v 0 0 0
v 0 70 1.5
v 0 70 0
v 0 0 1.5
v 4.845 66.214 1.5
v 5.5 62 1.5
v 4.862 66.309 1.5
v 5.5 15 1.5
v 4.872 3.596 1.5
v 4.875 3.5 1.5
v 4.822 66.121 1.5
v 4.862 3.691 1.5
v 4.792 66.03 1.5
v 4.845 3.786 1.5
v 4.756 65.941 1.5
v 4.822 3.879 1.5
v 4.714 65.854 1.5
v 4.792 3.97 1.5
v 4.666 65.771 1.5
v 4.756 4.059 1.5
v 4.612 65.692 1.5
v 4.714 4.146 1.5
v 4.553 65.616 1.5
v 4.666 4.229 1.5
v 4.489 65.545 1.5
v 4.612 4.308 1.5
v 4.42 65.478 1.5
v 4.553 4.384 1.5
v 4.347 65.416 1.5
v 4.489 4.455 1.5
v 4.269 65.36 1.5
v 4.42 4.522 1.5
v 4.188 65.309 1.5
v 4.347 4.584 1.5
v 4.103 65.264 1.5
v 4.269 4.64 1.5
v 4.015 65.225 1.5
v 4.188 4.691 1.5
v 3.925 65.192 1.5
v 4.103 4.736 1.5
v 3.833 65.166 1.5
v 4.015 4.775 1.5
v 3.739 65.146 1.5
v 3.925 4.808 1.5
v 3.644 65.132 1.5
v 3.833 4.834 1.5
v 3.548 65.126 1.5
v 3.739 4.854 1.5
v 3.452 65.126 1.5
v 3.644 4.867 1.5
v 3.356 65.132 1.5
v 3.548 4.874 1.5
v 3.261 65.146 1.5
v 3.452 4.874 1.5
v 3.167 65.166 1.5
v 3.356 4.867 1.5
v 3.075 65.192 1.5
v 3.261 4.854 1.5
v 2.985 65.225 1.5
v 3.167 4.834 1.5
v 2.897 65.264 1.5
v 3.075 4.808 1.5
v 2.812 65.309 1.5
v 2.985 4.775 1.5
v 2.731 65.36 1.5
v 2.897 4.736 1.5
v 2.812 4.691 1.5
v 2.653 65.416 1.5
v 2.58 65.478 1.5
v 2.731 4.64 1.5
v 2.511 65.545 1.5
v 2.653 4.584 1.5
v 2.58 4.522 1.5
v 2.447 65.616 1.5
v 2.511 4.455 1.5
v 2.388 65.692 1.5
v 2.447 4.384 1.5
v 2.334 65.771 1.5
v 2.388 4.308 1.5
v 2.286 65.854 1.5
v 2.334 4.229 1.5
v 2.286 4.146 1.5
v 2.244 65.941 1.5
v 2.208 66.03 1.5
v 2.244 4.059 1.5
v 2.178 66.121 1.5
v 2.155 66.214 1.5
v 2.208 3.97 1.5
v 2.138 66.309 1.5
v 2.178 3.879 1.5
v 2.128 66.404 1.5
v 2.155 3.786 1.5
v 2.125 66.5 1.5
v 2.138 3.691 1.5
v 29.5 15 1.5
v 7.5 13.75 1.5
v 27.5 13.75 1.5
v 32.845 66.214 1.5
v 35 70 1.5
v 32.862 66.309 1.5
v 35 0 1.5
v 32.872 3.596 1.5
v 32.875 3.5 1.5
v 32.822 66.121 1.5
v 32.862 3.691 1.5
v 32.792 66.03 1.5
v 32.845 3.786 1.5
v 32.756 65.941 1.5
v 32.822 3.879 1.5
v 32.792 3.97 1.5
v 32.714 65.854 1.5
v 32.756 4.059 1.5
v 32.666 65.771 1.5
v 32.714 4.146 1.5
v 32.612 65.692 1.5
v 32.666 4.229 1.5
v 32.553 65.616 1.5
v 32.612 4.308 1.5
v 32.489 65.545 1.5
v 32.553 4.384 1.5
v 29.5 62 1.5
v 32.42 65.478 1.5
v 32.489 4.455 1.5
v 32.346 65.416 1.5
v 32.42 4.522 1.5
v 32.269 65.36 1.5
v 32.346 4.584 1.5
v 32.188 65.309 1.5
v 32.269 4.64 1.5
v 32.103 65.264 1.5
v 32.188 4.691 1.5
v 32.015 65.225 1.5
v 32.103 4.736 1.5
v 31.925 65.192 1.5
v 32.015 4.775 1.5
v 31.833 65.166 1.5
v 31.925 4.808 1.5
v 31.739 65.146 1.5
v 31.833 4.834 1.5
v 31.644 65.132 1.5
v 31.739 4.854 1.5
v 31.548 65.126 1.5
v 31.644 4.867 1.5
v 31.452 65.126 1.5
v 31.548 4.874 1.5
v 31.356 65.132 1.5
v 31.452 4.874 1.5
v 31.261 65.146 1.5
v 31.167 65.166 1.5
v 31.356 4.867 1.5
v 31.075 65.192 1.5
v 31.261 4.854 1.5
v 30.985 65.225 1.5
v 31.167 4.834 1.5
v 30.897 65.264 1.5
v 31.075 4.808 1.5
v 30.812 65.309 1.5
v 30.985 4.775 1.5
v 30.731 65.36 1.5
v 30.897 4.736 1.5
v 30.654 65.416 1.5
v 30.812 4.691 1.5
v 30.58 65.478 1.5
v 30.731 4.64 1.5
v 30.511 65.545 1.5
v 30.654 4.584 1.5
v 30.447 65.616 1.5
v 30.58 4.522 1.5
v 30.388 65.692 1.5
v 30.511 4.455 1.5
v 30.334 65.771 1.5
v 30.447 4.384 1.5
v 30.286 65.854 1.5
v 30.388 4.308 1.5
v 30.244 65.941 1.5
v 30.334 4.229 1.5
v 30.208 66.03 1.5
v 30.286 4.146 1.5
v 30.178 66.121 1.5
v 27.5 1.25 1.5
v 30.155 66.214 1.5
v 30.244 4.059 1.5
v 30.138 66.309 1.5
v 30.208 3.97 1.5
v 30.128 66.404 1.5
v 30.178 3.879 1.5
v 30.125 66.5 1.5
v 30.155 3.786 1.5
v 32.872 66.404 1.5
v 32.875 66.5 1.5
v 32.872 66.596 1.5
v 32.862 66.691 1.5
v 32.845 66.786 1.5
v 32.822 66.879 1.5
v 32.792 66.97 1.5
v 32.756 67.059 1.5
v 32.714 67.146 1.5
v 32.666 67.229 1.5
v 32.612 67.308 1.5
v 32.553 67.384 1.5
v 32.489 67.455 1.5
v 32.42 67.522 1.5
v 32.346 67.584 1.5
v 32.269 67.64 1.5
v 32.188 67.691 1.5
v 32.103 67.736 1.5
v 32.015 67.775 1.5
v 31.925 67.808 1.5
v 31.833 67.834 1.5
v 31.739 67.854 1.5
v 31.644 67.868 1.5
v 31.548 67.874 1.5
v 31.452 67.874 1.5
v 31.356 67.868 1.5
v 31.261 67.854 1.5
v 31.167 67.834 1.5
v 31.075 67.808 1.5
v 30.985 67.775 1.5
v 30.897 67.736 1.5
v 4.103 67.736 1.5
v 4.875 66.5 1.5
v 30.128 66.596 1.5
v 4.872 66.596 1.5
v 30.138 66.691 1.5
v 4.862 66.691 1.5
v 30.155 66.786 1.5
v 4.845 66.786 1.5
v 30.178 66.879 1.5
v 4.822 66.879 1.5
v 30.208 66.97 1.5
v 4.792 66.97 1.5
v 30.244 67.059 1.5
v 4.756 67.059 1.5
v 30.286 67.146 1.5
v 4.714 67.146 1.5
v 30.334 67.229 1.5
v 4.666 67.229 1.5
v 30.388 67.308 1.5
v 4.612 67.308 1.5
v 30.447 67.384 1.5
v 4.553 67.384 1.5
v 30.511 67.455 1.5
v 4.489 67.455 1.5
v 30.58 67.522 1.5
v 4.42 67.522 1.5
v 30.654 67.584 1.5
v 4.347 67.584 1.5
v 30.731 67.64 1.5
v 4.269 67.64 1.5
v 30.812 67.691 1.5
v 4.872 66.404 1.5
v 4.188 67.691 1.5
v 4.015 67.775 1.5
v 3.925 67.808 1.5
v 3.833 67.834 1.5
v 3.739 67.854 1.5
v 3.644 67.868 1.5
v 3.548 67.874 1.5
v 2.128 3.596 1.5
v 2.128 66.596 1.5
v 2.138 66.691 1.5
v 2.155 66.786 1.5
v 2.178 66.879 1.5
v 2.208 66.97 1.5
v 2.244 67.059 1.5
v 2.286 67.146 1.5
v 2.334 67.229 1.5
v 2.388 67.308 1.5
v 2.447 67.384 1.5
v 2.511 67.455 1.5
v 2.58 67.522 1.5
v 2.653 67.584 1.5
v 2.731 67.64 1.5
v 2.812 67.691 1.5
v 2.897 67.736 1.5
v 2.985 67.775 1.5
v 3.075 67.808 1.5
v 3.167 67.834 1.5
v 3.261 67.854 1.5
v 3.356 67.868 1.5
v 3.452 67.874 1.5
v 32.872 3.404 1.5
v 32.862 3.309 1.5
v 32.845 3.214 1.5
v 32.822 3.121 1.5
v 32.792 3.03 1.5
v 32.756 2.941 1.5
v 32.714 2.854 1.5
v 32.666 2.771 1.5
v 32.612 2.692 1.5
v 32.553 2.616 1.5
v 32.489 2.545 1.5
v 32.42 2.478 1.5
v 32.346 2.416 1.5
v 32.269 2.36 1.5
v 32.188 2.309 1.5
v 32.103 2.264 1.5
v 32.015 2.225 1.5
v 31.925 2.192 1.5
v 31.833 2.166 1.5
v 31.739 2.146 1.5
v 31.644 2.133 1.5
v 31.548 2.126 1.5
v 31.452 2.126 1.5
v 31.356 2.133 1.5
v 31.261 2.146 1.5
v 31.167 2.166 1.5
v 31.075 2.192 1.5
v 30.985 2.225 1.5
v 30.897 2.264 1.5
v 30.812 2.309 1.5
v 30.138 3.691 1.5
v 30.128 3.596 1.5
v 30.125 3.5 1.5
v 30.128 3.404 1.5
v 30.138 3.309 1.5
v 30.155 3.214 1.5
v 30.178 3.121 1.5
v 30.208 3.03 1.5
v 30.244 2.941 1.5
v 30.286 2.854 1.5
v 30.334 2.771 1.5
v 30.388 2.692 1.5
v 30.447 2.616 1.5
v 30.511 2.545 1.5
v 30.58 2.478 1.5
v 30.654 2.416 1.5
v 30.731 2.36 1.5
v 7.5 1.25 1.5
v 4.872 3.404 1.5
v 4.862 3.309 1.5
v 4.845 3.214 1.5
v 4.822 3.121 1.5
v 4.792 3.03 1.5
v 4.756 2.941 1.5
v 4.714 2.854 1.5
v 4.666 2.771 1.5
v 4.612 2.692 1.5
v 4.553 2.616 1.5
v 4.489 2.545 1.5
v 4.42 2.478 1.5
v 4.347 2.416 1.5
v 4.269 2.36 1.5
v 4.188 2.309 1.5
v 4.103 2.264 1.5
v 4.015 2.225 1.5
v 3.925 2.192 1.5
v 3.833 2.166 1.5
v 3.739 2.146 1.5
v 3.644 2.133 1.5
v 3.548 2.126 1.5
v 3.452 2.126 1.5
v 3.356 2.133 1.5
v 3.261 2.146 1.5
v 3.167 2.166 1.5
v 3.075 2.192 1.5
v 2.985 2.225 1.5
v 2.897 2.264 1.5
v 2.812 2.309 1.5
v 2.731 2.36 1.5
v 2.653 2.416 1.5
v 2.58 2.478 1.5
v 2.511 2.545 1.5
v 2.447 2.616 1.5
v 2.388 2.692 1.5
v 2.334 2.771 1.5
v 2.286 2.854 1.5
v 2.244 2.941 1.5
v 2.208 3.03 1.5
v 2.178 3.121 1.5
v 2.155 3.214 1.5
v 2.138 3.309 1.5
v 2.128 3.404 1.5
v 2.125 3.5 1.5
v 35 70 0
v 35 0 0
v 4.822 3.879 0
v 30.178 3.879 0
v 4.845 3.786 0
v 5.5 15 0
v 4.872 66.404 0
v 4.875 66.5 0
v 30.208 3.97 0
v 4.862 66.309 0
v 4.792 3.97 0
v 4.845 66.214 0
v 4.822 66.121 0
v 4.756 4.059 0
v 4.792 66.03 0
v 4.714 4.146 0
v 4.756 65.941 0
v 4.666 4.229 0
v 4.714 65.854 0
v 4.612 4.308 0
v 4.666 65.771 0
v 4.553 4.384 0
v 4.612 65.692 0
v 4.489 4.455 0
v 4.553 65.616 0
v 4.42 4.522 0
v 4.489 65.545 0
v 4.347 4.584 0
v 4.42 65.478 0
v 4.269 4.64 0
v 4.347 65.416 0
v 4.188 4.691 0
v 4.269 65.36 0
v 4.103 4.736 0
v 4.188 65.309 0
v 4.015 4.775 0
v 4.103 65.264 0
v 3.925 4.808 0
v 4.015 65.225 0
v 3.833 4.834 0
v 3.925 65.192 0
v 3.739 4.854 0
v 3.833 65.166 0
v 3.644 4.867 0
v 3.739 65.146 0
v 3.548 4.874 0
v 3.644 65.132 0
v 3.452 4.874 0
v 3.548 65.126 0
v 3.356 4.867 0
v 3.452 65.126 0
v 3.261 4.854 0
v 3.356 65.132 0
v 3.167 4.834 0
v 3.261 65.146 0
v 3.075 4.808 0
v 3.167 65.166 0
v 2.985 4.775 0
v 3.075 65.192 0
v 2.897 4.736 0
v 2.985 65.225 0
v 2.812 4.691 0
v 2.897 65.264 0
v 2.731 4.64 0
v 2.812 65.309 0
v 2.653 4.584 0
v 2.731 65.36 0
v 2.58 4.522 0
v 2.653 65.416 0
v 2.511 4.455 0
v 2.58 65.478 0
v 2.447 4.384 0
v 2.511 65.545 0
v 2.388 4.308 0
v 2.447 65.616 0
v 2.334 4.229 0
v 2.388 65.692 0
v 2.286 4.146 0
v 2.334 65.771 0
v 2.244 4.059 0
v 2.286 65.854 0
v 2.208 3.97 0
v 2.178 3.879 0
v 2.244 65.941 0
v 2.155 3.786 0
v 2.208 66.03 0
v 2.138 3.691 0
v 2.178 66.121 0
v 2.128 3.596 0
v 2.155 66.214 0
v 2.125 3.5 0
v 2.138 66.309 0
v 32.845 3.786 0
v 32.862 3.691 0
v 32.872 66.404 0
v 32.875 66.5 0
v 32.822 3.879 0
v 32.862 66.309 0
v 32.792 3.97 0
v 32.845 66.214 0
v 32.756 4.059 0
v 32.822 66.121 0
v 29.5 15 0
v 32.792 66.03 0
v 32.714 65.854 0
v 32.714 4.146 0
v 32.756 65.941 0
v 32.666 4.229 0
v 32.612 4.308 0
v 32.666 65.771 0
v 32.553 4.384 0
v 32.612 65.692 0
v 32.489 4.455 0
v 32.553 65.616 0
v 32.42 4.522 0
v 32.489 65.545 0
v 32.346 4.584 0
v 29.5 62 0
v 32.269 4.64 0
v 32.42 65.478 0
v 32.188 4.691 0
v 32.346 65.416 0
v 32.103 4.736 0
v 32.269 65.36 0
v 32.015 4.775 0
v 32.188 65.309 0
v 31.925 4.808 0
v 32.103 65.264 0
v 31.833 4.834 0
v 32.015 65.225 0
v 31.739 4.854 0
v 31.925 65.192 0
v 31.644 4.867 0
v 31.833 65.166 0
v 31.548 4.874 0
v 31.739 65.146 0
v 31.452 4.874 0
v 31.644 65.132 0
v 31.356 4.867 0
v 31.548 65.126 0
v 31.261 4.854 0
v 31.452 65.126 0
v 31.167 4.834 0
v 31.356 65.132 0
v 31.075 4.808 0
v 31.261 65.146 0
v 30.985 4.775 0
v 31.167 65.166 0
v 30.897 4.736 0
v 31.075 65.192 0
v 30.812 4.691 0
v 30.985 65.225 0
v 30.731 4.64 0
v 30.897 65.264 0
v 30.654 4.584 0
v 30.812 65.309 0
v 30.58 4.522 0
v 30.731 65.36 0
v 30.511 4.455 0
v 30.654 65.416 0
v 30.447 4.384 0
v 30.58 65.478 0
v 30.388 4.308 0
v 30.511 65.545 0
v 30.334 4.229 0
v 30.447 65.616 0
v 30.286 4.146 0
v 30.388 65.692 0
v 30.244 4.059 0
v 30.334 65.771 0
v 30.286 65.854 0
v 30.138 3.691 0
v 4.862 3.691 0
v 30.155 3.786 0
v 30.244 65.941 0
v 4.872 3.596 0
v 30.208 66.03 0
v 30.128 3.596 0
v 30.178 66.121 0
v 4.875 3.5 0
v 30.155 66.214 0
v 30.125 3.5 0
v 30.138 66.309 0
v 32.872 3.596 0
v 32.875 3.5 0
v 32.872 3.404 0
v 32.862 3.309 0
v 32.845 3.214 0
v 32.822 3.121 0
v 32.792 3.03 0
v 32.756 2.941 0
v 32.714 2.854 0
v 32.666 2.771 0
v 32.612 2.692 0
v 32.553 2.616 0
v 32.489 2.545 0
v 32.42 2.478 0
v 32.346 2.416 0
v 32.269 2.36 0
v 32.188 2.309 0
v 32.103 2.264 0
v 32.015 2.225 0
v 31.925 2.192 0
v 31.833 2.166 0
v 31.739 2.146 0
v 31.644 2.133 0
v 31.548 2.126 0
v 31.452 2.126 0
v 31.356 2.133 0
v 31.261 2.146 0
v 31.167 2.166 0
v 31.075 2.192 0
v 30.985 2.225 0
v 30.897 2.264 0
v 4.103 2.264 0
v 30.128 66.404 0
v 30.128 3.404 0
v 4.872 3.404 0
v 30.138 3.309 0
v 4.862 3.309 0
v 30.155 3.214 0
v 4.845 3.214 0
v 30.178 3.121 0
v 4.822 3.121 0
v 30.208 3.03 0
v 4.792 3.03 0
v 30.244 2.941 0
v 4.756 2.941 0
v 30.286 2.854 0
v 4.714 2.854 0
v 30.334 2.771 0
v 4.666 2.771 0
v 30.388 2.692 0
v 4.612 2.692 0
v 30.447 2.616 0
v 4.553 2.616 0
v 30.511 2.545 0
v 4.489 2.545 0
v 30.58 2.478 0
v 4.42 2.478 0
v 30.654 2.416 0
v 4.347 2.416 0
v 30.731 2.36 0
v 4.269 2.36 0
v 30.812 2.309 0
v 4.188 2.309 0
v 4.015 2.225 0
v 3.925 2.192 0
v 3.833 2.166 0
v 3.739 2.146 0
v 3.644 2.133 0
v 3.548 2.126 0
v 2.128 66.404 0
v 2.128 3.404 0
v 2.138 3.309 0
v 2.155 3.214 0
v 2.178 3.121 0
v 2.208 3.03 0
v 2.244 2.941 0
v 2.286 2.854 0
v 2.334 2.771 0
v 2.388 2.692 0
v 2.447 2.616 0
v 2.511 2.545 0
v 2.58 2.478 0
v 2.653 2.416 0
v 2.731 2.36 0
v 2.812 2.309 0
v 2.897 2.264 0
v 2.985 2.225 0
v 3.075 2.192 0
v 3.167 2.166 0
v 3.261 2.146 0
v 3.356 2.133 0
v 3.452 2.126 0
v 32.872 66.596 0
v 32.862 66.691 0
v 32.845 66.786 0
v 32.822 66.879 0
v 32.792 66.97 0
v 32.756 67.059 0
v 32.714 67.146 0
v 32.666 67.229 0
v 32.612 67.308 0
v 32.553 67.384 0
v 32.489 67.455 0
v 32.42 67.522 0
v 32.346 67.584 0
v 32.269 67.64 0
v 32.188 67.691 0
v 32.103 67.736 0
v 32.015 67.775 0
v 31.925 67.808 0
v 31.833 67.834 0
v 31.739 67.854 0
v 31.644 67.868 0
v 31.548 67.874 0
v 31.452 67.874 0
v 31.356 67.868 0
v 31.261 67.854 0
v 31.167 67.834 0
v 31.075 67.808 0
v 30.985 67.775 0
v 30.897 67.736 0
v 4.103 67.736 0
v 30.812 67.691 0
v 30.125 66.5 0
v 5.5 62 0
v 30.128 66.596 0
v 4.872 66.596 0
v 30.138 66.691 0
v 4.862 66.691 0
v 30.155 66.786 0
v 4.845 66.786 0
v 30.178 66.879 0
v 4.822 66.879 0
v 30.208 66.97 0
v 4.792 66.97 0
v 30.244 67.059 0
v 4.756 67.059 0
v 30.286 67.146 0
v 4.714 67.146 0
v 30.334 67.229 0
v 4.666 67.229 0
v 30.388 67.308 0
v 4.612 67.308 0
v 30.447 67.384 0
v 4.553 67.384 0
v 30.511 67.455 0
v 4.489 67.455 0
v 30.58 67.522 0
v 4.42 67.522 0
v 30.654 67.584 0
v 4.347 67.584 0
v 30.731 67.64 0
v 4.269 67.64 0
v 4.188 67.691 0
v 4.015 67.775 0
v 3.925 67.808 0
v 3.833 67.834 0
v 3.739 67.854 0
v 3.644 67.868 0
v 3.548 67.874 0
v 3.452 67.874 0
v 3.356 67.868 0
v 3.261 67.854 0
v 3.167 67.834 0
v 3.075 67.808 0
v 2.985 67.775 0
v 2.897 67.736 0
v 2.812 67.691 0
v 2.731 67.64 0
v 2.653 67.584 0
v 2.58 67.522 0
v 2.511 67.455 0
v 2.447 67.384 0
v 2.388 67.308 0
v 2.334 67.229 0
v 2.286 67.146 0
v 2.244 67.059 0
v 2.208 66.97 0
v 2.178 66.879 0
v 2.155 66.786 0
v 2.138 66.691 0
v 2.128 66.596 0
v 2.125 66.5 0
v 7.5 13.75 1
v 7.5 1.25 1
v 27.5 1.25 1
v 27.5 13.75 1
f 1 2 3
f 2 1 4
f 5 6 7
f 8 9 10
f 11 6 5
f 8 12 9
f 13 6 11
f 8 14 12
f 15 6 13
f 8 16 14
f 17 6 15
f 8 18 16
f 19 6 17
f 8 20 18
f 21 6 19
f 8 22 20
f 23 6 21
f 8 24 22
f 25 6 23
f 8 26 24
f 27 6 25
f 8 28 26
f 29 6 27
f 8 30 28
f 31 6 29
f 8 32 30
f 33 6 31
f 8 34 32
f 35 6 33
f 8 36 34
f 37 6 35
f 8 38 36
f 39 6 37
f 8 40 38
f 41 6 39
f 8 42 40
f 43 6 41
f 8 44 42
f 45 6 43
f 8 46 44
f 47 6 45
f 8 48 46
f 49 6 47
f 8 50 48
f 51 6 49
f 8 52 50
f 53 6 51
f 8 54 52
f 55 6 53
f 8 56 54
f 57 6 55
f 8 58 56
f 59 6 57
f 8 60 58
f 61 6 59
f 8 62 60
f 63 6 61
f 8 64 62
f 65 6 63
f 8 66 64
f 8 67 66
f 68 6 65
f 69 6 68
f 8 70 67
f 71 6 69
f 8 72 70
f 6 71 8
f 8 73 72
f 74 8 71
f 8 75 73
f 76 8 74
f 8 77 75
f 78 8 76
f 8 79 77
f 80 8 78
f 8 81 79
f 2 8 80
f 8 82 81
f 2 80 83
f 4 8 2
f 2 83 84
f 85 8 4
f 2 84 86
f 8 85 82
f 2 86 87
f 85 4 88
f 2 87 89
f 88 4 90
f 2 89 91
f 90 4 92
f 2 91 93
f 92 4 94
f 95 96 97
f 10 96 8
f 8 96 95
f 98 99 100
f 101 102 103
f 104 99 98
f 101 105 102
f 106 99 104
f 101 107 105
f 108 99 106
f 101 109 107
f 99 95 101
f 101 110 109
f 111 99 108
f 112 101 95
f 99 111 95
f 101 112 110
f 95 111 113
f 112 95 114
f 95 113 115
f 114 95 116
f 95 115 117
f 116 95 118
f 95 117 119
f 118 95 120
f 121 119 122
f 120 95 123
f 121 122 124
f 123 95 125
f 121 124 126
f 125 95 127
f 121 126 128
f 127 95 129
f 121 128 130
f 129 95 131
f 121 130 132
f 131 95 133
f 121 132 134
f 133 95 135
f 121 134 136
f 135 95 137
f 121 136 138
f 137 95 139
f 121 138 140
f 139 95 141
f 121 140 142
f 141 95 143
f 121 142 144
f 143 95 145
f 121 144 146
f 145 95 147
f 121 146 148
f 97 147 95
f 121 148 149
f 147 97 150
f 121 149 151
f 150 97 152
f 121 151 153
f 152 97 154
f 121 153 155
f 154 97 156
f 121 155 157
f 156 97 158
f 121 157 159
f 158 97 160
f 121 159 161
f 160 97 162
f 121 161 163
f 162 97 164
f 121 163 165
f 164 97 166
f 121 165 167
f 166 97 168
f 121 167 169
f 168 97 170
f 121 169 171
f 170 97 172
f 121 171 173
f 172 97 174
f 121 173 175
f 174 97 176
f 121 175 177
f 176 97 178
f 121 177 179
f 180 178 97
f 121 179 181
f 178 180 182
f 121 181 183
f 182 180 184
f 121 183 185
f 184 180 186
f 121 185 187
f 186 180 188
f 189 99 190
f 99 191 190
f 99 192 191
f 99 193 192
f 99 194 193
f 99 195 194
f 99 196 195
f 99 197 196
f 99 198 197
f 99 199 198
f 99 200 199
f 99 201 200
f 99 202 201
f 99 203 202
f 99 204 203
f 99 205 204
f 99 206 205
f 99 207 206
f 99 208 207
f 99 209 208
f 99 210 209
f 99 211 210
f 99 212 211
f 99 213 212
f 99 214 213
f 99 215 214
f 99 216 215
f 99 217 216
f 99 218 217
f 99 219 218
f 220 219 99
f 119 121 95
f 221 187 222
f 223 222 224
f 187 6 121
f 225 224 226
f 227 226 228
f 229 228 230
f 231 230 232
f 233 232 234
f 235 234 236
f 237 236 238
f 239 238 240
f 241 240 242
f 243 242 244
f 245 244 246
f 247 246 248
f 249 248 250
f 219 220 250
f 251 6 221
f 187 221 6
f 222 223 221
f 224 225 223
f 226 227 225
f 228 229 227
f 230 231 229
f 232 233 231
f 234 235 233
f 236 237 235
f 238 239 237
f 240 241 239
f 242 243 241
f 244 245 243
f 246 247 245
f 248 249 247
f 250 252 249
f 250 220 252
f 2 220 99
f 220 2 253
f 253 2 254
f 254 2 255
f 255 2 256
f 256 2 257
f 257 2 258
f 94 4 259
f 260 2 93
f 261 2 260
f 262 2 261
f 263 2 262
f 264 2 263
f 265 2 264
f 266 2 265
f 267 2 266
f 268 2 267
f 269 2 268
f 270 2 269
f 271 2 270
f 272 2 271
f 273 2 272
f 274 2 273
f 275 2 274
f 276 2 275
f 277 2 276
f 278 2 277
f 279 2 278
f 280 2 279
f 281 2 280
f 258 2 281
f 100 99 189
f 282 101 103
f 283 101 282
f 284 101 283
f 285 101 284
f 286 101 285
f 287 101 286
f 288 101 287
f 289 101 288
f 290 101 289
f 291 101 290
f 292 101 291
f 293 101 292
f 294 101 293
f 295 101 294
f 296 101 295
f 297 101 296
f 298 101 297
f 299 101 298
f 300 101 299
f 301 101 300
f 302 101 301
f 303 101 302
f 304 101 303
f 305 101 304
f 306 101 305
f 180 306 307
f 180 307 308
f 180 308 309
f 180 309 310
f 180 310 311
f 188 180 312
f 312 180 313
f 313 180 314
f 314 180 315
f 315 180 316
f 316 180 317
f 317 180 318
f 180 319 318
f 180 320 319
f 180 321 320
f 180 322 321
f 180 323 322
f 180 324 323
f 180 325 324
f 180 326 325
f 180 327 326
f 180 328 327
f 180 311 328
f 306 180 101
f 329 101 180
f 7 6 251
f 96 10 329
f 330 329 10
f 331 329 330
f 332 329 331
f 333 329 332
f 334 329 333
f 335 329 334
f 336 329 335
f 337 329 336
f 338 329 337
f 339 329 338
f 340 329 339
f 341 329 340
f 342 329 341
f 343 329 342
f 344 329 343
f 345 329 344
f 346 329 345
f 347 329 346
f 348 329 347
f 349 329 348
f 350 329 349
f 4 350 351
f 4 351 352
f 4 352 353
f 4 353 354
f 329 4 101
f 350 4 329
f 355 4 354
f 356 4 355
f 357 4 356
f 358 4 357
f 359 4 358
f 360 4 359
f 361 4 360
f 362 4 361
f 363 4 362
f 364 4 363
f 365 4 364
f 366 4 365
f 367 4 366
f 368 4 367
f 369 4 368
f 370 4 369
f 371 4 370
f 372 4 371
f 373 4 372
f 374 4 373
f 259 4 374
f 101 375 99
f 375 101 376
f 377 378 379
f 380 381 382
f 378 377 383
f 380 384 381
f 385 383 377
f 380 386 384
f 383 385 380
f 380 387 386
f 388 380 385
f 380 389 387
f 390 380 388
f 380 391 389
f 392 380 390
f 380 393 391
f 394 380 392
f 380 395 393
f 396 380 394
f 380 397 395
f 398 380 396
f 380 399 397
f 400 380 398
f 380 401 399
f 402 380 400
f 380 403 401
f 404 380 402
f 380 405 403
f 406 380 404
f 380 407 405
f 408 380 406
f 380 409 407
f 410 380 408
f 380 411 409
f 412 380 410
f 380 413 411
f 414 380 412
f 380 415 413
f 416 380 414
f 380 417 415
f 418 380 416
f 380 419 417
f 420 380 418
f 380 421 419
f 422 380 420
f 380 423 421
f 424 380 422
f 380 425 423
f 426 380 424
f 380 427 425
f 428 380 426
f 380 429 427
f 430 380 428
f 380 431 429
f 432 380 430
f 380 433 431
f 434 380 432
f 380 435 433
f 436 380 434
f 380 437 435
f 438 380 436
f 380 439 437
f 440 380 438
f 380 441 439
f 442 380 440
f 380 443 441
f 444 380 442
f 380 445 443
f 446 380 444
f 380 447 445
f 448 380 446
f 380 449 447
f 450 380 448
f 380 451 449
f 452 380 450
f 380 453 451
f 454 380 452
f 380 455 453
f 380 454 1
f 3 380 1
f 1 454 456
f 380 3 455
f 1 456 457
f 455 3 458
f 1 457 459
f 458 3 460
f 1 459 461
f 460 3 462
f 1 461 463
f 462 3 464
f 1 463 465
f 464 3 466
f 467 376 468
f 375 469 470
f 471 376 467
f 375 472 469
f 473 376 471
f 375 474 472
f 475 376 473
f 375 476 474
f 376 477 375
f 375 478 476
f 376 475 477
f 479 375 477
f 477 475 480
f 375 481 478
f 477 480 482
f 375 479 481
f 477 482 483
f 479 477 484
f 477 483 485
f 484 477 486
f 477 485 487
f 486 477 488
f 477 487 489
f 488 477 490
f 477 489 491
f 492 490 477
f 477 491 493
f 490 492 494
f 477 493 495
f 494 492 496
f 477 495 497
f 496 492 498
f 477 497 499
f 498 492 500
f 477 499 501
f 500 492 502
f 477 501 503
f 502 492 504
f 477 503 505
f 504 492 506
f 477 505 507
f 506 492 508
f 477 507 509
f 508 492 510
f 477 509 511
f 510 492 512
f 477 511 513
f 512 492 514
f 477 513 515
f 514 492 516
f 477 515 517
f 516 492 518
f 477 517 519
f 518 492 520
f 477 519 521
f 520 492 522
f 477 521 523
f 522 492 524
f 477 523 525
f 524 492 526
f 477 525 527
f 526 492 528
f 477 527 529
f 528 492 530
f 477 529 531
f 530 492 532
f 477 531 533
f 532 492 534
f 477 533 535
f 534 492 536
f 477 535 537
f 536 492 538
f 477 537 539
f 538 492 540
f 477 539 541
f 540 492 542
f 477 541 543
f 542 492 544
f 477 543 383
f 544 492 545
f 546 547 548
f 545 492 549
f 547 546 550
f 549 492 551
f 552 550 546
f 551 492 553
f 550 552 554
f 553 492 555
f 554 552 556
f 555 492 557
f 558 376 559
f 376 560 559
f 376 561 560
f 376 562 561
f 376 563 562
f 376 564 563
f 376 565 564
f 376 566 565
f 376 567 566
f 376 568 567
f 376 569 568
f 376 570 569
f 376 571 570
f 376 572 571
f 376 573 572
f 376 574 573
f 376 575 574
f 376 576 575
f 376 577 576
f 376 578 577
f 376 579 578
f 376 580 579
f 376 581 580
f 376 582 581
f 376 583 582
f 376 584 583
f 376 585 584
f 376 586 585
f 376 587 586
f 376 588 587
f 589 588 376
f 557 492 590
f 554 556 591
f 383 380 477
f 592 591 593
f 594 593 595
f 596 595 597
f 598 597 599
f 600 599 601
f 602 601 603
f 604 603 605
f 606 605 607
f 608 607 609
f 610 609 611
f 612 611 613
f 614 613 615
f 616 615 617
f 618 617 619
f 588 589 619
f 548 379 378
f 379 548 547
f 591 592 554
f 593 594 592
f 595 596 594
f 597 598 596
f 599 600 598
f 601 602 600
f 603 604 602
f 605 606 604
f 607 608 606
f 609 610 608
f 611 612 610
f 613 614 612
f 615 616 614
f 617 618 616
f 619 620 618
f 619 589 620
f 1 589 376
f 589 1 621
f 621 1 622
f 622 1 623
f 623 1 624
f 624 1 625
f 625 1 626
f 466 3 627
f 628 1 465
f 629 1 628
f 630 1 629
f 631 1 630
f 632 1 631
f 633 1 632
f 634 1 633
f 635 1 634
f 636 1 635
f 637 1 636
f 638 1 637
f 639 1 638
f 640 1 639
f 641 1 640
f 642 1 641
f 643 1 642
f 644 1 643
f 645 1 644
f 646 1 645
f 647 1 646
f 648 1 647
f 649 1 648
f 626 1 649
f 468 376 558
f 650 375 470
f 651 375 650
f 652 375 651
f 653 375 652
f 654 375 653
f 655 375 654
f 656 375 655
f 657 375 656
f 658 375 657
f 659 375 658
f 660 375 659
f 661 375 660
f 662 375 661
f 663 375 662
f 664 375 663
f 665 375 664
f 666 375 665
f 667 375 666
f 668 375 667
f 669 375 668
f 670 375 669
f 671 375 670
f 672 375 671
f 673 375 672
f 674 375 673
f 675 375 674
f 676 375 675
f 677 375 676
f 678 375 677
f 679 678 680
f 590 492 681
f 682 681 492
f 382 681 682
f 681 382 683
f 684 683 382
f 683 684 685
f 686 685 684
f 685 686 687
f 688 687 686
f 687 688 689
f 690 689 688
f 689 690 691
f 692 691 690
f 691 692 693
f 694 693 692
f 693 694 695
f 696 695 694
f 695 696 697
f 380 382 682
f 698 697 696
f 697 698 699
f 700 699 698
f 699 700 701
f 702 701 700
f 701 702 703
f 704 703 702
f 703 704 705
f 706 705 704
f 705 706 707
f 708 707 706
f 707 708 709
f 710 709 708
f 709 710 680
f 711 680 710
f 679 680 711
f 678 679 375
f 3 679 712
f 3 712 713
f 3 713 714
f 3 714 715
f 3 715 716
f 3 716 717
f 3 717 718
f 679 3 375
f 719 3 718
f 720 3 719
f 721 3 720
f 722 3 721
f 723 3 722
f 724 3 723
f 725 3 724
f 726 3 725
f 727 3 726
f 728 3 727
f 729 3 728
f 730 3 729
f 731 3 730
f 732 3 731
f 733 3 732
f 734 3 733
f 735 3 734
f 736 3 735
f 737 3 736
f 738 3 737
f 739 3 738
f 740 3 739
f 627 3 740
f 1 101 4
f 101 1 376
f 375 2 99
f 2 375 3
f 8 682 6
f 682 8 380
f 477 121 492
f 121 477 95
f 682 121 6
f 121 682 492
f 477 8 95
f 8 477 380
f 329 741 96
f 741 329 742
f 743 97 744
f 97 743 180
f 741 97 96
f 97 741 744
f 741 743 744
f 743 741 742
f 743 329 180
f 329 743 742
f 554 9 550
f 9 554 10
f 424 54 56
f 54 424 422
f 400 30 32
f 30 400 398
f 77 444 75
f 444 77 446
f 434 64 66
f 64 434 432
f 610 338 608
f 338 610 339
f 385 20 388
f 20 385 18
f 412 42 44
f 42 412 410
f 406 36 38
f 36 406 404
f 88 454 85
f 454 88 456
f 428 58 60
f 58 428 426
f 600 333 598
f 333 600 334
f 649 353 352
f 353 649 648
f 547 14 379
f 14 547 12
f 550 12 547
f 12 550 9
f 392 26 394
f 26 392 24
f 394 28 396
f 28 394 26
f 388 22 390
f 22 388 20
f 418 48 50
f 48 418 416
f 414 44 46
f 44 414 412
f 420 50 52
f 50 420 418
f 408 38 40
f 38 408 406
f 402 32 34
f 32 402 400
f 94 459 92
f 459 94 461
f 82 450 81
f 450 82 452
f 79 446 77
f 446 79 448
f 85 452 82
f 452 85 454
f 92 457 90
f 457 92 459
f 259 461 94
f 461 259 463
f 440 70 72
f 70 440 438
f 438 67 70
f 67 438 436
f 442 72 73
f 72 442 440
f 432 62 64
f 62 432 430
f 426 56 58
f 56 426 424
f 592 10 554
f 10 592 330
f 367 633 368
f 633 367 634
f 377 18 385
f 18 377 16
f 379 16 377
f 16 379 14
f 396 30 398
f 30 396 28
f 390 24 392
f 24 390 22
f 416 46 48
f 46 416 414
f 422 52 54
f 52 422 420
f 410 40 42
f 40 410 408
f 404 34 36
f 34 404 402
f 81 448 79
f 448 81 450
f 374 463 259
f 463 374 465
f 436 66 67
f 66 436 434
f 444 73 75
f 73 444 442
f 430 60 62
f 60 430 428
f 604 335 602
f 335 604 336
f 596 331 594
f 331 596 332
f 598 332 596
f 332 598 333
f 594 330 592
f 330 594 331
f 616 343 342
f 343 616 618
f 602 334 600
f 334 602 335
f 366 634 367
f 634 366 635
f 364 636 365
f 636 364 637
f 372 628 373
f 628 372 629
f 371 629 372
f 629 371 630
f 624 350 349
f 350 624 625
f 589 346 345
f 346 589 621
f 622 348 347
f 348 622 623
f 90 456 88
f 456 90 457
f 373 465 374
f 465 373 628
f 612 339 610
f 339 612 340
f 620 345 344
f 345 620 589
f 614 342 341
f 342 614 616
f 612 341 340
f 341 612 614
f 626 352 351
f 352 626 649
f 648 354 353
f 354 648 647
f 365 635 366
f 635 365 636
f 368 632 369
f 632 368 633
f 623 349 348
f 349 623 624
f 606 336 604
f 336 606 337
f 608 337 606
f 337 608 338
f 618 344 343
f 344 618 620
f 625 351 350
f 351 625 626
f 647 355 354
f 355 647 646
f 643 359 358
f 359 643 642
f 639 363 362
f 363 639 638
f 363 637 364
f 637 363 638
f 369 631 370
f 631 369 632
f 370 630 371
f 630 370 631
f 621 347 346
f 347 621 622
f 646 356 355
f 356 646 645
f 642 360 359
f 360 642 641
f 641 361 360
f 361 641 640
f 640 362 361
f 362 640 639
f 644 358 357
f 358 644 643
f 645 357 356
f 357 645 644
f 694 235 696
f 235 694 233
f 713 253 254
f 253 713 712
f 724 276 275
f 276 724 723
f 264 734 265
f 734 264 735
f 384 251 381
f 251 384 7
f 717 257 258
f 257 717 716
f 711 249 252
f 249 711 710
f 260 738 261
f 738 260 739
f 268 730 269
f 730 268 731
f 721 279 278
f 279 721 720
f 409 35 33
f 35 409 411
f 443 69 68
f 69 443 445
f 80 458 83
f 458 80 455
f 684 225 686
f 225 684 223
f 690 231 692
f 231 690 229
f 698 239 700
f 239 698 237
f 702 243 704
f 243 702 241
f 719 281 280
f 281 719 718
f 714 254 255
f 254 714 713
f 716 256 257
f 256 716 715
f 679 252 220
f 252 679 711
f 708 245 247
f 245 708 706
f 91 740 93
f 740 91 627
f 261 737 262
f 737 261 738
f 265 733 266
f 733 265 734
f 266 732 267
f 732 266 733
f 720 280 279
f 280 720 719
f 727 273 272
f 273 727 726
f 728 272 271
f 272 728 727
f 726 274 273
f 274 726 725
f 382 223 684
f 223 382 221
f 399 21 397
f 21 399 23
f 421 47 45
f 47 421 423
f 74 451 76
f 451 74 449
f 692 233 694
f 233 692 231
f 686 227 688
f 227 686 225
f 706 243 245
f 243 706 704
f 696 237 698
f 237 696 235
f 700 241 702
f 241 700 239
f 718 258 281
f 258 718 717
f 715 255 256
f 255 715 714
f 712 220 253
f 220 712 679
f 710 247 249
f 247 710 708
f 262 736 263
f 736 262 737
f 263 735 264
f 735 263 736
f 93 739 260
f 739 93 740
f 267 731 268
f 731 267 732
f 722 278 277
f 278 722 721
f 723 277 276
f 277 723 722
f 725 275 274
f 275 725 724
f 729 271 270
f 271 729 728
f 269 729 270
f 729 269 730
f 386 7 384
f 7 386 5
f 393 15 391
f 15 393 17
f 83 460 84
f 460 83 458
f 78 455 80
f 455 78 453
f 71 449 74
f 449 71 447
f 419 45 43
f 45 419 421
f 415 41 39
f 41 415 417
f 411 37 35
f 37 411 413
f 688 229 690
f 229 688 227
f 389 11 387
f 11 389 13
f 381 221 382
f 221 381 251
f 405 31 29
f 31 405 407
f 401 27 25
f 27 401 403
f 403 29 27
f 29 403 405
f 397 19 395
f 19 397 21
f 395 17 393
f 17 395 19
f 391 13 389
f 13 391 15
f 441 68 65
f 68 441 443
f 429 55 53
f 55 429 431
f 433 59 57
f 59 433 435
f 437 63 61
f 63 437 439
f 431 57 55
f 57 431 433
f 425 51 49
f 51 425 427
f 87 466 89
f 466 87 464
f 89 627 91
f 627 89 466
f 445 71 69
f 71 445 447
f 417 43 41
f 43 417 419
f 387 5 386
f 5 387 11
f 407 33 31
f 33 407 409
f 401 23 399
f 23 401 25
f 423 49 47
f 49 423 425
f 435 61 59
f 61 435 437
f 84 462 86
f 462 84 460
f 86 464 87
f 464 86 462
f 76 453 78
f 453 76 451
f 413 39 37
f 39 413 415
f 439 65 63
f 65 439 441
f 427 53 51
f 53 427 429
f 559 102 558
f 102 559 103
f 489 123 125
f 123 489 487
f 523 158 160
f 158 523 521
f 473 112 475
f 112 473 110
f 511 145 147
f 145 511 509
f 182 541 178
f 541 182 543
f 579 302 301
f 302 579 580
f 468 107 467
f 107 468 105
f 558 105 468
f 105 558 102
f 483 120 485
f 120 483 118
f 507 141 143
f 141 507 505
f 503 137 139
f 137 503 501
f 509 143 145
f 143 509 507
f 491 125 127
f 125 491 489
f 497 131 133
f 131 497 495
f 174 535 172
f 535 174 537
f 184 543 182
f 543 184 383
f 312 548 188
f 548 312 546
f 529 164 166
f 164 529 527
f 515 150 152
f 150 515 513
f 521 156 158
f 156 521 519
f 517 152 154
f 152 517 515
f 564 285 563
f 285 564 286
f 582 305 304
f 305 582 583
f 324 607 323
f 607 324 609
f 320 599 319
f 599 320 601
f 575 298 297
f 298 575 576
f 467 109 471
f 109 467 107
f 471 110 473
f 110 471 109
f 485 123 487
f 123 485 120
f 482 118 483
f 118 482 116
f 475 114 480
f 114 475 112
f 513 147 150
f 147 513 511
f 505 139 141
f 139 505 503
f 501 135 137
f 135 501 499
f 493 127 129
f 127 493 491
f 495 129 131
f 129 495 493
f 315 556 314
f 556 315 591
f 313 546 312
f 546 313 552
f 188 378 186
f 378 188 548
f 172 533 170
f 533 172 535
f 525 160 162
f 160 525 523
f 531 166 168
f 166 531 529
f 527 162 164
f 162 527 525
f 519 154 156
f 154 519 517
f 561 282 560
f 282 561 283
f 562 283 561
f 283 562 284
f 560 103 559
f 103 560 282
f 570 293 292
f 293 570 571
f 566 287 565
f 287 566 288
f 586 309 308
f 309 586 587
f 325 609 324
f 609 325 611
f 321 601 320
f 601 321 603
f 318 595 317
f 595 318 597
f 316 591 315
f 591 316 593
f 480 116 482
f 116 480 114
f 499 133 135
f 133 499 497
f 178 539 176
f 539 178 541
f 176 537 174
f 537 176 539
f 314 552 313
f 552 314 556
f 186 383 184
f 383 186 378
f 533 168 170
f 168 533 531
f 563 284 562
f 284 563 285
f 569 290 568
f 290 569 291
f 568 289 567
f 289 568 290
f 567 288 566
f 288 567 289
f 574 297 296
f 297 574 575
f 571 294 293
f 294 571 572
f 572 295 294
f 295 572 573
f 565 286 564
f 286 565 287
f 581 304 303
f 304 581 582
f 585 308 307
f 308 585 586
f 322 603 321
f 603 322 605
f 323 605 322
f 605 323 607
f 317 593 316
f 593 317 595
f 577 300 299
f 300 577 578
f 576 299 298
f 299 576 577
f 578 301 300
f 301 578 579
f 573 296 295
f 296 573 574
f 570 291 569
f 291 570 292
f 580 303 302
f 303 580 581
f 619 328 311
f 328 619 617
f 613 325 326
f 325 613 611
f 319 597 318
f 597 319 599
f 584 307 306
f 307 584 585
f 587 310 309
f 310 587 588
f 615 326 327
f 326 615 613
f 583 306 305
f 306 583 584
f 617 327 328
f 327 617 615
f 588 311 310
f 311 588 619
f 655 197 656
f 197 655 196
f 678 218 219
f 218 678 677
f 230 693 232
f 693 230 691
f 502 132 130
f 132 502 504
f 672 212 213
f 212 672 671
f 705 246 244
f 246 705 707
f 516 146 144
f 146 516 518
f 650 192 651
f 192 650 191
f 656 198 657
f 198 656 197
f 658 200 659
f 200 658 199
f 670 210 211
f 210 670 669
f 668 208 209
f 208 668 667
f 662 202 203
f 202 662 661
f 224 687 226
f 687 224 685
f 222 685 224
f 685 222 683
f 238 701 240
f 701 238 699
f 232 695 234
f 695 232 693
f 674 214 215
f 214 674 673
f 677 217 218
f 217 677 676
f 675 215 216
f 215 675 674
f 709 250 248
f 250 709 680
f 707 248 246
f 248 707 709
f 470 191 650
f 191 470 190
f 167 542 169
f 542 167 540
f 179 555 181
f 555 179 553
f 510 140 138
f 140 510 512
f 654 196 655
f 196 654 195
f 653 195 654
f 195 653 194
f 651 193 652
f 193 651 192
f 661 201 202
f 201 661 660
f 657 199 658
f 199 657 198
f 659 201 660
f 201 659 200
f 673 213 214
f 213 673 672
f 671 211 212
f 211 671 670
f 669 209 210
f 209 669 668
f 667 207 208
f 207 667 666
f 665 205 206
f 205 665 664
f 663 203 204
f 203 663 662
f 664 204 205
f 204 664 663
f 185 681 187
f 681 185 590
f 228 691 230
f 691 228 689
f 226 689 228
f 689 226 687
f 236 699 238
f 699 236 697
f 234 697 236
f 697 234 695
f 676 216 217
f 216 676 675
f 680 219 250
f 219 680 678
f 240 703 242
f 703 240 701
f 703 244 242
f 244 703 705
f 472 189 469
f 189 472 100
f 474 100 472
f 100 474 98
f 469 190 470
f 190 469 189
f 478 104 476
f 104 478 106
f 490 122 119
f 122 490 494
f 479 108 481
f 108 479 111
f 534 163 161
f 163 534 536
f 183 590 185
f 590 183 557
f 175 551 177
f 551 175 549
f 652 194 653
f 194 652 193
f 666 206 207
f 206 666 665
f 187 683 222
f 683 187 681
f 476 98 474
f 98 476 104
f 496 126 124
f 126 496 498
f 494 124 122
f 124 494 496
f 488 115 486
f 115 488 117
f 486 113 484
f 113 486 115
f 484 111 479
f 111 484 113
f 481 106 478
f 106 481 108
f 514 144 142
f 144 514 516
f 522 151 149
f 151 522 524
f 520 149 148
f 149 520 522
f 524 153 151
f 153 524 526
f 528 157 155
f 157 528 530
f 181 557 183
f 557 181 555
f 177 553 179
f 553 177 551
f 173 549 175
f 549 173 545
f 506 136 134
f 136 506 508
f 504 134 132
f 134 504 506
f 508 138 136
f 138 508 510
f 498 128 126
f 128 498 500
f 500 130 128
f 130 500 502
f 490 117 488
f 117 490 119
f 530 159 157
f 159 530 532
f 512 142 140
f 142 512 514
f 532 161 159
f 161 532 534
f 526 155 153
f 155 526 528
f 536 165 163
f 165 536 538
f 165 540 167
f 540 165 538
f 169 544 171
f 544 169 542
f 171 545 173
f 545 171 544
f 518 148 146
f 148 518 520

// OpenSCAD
$fn = 90;

// Placa
lx = 35;
ly = 70;
lz = 1.5;

// Agujero
lx1 = 24;
ly1 = 39+8;
lz1 = lz;

// RFID
lx2 = 20;
ly2 = 12.5;
lz2 = 0.5;

// Tornillos
r = 2.75/2;
h = lz;
d = 3.5;


difference() {
  cube([lx, ly, lz]);

  // Agujero
  translate([(lx-lx1)/2, 15, 0]) cube([lx1, ly1, lz1]);

  // RFID
  translate([(lx-lx2)/2, 1.25, lz-lz2]) cube([lx2, ly2, lz2]);

  // Tornillos
  translate([d, d, 0]) cylinder(r=r, h=h);
  translate([d, ly-d, 0]) cylinder(r=r, h=h);
  translate([lx-d, d, 0]) cylinder(r=r, h=h);
  translate([lx-d, ly-d, 0]) cylinder(r=r, h=h);
}
